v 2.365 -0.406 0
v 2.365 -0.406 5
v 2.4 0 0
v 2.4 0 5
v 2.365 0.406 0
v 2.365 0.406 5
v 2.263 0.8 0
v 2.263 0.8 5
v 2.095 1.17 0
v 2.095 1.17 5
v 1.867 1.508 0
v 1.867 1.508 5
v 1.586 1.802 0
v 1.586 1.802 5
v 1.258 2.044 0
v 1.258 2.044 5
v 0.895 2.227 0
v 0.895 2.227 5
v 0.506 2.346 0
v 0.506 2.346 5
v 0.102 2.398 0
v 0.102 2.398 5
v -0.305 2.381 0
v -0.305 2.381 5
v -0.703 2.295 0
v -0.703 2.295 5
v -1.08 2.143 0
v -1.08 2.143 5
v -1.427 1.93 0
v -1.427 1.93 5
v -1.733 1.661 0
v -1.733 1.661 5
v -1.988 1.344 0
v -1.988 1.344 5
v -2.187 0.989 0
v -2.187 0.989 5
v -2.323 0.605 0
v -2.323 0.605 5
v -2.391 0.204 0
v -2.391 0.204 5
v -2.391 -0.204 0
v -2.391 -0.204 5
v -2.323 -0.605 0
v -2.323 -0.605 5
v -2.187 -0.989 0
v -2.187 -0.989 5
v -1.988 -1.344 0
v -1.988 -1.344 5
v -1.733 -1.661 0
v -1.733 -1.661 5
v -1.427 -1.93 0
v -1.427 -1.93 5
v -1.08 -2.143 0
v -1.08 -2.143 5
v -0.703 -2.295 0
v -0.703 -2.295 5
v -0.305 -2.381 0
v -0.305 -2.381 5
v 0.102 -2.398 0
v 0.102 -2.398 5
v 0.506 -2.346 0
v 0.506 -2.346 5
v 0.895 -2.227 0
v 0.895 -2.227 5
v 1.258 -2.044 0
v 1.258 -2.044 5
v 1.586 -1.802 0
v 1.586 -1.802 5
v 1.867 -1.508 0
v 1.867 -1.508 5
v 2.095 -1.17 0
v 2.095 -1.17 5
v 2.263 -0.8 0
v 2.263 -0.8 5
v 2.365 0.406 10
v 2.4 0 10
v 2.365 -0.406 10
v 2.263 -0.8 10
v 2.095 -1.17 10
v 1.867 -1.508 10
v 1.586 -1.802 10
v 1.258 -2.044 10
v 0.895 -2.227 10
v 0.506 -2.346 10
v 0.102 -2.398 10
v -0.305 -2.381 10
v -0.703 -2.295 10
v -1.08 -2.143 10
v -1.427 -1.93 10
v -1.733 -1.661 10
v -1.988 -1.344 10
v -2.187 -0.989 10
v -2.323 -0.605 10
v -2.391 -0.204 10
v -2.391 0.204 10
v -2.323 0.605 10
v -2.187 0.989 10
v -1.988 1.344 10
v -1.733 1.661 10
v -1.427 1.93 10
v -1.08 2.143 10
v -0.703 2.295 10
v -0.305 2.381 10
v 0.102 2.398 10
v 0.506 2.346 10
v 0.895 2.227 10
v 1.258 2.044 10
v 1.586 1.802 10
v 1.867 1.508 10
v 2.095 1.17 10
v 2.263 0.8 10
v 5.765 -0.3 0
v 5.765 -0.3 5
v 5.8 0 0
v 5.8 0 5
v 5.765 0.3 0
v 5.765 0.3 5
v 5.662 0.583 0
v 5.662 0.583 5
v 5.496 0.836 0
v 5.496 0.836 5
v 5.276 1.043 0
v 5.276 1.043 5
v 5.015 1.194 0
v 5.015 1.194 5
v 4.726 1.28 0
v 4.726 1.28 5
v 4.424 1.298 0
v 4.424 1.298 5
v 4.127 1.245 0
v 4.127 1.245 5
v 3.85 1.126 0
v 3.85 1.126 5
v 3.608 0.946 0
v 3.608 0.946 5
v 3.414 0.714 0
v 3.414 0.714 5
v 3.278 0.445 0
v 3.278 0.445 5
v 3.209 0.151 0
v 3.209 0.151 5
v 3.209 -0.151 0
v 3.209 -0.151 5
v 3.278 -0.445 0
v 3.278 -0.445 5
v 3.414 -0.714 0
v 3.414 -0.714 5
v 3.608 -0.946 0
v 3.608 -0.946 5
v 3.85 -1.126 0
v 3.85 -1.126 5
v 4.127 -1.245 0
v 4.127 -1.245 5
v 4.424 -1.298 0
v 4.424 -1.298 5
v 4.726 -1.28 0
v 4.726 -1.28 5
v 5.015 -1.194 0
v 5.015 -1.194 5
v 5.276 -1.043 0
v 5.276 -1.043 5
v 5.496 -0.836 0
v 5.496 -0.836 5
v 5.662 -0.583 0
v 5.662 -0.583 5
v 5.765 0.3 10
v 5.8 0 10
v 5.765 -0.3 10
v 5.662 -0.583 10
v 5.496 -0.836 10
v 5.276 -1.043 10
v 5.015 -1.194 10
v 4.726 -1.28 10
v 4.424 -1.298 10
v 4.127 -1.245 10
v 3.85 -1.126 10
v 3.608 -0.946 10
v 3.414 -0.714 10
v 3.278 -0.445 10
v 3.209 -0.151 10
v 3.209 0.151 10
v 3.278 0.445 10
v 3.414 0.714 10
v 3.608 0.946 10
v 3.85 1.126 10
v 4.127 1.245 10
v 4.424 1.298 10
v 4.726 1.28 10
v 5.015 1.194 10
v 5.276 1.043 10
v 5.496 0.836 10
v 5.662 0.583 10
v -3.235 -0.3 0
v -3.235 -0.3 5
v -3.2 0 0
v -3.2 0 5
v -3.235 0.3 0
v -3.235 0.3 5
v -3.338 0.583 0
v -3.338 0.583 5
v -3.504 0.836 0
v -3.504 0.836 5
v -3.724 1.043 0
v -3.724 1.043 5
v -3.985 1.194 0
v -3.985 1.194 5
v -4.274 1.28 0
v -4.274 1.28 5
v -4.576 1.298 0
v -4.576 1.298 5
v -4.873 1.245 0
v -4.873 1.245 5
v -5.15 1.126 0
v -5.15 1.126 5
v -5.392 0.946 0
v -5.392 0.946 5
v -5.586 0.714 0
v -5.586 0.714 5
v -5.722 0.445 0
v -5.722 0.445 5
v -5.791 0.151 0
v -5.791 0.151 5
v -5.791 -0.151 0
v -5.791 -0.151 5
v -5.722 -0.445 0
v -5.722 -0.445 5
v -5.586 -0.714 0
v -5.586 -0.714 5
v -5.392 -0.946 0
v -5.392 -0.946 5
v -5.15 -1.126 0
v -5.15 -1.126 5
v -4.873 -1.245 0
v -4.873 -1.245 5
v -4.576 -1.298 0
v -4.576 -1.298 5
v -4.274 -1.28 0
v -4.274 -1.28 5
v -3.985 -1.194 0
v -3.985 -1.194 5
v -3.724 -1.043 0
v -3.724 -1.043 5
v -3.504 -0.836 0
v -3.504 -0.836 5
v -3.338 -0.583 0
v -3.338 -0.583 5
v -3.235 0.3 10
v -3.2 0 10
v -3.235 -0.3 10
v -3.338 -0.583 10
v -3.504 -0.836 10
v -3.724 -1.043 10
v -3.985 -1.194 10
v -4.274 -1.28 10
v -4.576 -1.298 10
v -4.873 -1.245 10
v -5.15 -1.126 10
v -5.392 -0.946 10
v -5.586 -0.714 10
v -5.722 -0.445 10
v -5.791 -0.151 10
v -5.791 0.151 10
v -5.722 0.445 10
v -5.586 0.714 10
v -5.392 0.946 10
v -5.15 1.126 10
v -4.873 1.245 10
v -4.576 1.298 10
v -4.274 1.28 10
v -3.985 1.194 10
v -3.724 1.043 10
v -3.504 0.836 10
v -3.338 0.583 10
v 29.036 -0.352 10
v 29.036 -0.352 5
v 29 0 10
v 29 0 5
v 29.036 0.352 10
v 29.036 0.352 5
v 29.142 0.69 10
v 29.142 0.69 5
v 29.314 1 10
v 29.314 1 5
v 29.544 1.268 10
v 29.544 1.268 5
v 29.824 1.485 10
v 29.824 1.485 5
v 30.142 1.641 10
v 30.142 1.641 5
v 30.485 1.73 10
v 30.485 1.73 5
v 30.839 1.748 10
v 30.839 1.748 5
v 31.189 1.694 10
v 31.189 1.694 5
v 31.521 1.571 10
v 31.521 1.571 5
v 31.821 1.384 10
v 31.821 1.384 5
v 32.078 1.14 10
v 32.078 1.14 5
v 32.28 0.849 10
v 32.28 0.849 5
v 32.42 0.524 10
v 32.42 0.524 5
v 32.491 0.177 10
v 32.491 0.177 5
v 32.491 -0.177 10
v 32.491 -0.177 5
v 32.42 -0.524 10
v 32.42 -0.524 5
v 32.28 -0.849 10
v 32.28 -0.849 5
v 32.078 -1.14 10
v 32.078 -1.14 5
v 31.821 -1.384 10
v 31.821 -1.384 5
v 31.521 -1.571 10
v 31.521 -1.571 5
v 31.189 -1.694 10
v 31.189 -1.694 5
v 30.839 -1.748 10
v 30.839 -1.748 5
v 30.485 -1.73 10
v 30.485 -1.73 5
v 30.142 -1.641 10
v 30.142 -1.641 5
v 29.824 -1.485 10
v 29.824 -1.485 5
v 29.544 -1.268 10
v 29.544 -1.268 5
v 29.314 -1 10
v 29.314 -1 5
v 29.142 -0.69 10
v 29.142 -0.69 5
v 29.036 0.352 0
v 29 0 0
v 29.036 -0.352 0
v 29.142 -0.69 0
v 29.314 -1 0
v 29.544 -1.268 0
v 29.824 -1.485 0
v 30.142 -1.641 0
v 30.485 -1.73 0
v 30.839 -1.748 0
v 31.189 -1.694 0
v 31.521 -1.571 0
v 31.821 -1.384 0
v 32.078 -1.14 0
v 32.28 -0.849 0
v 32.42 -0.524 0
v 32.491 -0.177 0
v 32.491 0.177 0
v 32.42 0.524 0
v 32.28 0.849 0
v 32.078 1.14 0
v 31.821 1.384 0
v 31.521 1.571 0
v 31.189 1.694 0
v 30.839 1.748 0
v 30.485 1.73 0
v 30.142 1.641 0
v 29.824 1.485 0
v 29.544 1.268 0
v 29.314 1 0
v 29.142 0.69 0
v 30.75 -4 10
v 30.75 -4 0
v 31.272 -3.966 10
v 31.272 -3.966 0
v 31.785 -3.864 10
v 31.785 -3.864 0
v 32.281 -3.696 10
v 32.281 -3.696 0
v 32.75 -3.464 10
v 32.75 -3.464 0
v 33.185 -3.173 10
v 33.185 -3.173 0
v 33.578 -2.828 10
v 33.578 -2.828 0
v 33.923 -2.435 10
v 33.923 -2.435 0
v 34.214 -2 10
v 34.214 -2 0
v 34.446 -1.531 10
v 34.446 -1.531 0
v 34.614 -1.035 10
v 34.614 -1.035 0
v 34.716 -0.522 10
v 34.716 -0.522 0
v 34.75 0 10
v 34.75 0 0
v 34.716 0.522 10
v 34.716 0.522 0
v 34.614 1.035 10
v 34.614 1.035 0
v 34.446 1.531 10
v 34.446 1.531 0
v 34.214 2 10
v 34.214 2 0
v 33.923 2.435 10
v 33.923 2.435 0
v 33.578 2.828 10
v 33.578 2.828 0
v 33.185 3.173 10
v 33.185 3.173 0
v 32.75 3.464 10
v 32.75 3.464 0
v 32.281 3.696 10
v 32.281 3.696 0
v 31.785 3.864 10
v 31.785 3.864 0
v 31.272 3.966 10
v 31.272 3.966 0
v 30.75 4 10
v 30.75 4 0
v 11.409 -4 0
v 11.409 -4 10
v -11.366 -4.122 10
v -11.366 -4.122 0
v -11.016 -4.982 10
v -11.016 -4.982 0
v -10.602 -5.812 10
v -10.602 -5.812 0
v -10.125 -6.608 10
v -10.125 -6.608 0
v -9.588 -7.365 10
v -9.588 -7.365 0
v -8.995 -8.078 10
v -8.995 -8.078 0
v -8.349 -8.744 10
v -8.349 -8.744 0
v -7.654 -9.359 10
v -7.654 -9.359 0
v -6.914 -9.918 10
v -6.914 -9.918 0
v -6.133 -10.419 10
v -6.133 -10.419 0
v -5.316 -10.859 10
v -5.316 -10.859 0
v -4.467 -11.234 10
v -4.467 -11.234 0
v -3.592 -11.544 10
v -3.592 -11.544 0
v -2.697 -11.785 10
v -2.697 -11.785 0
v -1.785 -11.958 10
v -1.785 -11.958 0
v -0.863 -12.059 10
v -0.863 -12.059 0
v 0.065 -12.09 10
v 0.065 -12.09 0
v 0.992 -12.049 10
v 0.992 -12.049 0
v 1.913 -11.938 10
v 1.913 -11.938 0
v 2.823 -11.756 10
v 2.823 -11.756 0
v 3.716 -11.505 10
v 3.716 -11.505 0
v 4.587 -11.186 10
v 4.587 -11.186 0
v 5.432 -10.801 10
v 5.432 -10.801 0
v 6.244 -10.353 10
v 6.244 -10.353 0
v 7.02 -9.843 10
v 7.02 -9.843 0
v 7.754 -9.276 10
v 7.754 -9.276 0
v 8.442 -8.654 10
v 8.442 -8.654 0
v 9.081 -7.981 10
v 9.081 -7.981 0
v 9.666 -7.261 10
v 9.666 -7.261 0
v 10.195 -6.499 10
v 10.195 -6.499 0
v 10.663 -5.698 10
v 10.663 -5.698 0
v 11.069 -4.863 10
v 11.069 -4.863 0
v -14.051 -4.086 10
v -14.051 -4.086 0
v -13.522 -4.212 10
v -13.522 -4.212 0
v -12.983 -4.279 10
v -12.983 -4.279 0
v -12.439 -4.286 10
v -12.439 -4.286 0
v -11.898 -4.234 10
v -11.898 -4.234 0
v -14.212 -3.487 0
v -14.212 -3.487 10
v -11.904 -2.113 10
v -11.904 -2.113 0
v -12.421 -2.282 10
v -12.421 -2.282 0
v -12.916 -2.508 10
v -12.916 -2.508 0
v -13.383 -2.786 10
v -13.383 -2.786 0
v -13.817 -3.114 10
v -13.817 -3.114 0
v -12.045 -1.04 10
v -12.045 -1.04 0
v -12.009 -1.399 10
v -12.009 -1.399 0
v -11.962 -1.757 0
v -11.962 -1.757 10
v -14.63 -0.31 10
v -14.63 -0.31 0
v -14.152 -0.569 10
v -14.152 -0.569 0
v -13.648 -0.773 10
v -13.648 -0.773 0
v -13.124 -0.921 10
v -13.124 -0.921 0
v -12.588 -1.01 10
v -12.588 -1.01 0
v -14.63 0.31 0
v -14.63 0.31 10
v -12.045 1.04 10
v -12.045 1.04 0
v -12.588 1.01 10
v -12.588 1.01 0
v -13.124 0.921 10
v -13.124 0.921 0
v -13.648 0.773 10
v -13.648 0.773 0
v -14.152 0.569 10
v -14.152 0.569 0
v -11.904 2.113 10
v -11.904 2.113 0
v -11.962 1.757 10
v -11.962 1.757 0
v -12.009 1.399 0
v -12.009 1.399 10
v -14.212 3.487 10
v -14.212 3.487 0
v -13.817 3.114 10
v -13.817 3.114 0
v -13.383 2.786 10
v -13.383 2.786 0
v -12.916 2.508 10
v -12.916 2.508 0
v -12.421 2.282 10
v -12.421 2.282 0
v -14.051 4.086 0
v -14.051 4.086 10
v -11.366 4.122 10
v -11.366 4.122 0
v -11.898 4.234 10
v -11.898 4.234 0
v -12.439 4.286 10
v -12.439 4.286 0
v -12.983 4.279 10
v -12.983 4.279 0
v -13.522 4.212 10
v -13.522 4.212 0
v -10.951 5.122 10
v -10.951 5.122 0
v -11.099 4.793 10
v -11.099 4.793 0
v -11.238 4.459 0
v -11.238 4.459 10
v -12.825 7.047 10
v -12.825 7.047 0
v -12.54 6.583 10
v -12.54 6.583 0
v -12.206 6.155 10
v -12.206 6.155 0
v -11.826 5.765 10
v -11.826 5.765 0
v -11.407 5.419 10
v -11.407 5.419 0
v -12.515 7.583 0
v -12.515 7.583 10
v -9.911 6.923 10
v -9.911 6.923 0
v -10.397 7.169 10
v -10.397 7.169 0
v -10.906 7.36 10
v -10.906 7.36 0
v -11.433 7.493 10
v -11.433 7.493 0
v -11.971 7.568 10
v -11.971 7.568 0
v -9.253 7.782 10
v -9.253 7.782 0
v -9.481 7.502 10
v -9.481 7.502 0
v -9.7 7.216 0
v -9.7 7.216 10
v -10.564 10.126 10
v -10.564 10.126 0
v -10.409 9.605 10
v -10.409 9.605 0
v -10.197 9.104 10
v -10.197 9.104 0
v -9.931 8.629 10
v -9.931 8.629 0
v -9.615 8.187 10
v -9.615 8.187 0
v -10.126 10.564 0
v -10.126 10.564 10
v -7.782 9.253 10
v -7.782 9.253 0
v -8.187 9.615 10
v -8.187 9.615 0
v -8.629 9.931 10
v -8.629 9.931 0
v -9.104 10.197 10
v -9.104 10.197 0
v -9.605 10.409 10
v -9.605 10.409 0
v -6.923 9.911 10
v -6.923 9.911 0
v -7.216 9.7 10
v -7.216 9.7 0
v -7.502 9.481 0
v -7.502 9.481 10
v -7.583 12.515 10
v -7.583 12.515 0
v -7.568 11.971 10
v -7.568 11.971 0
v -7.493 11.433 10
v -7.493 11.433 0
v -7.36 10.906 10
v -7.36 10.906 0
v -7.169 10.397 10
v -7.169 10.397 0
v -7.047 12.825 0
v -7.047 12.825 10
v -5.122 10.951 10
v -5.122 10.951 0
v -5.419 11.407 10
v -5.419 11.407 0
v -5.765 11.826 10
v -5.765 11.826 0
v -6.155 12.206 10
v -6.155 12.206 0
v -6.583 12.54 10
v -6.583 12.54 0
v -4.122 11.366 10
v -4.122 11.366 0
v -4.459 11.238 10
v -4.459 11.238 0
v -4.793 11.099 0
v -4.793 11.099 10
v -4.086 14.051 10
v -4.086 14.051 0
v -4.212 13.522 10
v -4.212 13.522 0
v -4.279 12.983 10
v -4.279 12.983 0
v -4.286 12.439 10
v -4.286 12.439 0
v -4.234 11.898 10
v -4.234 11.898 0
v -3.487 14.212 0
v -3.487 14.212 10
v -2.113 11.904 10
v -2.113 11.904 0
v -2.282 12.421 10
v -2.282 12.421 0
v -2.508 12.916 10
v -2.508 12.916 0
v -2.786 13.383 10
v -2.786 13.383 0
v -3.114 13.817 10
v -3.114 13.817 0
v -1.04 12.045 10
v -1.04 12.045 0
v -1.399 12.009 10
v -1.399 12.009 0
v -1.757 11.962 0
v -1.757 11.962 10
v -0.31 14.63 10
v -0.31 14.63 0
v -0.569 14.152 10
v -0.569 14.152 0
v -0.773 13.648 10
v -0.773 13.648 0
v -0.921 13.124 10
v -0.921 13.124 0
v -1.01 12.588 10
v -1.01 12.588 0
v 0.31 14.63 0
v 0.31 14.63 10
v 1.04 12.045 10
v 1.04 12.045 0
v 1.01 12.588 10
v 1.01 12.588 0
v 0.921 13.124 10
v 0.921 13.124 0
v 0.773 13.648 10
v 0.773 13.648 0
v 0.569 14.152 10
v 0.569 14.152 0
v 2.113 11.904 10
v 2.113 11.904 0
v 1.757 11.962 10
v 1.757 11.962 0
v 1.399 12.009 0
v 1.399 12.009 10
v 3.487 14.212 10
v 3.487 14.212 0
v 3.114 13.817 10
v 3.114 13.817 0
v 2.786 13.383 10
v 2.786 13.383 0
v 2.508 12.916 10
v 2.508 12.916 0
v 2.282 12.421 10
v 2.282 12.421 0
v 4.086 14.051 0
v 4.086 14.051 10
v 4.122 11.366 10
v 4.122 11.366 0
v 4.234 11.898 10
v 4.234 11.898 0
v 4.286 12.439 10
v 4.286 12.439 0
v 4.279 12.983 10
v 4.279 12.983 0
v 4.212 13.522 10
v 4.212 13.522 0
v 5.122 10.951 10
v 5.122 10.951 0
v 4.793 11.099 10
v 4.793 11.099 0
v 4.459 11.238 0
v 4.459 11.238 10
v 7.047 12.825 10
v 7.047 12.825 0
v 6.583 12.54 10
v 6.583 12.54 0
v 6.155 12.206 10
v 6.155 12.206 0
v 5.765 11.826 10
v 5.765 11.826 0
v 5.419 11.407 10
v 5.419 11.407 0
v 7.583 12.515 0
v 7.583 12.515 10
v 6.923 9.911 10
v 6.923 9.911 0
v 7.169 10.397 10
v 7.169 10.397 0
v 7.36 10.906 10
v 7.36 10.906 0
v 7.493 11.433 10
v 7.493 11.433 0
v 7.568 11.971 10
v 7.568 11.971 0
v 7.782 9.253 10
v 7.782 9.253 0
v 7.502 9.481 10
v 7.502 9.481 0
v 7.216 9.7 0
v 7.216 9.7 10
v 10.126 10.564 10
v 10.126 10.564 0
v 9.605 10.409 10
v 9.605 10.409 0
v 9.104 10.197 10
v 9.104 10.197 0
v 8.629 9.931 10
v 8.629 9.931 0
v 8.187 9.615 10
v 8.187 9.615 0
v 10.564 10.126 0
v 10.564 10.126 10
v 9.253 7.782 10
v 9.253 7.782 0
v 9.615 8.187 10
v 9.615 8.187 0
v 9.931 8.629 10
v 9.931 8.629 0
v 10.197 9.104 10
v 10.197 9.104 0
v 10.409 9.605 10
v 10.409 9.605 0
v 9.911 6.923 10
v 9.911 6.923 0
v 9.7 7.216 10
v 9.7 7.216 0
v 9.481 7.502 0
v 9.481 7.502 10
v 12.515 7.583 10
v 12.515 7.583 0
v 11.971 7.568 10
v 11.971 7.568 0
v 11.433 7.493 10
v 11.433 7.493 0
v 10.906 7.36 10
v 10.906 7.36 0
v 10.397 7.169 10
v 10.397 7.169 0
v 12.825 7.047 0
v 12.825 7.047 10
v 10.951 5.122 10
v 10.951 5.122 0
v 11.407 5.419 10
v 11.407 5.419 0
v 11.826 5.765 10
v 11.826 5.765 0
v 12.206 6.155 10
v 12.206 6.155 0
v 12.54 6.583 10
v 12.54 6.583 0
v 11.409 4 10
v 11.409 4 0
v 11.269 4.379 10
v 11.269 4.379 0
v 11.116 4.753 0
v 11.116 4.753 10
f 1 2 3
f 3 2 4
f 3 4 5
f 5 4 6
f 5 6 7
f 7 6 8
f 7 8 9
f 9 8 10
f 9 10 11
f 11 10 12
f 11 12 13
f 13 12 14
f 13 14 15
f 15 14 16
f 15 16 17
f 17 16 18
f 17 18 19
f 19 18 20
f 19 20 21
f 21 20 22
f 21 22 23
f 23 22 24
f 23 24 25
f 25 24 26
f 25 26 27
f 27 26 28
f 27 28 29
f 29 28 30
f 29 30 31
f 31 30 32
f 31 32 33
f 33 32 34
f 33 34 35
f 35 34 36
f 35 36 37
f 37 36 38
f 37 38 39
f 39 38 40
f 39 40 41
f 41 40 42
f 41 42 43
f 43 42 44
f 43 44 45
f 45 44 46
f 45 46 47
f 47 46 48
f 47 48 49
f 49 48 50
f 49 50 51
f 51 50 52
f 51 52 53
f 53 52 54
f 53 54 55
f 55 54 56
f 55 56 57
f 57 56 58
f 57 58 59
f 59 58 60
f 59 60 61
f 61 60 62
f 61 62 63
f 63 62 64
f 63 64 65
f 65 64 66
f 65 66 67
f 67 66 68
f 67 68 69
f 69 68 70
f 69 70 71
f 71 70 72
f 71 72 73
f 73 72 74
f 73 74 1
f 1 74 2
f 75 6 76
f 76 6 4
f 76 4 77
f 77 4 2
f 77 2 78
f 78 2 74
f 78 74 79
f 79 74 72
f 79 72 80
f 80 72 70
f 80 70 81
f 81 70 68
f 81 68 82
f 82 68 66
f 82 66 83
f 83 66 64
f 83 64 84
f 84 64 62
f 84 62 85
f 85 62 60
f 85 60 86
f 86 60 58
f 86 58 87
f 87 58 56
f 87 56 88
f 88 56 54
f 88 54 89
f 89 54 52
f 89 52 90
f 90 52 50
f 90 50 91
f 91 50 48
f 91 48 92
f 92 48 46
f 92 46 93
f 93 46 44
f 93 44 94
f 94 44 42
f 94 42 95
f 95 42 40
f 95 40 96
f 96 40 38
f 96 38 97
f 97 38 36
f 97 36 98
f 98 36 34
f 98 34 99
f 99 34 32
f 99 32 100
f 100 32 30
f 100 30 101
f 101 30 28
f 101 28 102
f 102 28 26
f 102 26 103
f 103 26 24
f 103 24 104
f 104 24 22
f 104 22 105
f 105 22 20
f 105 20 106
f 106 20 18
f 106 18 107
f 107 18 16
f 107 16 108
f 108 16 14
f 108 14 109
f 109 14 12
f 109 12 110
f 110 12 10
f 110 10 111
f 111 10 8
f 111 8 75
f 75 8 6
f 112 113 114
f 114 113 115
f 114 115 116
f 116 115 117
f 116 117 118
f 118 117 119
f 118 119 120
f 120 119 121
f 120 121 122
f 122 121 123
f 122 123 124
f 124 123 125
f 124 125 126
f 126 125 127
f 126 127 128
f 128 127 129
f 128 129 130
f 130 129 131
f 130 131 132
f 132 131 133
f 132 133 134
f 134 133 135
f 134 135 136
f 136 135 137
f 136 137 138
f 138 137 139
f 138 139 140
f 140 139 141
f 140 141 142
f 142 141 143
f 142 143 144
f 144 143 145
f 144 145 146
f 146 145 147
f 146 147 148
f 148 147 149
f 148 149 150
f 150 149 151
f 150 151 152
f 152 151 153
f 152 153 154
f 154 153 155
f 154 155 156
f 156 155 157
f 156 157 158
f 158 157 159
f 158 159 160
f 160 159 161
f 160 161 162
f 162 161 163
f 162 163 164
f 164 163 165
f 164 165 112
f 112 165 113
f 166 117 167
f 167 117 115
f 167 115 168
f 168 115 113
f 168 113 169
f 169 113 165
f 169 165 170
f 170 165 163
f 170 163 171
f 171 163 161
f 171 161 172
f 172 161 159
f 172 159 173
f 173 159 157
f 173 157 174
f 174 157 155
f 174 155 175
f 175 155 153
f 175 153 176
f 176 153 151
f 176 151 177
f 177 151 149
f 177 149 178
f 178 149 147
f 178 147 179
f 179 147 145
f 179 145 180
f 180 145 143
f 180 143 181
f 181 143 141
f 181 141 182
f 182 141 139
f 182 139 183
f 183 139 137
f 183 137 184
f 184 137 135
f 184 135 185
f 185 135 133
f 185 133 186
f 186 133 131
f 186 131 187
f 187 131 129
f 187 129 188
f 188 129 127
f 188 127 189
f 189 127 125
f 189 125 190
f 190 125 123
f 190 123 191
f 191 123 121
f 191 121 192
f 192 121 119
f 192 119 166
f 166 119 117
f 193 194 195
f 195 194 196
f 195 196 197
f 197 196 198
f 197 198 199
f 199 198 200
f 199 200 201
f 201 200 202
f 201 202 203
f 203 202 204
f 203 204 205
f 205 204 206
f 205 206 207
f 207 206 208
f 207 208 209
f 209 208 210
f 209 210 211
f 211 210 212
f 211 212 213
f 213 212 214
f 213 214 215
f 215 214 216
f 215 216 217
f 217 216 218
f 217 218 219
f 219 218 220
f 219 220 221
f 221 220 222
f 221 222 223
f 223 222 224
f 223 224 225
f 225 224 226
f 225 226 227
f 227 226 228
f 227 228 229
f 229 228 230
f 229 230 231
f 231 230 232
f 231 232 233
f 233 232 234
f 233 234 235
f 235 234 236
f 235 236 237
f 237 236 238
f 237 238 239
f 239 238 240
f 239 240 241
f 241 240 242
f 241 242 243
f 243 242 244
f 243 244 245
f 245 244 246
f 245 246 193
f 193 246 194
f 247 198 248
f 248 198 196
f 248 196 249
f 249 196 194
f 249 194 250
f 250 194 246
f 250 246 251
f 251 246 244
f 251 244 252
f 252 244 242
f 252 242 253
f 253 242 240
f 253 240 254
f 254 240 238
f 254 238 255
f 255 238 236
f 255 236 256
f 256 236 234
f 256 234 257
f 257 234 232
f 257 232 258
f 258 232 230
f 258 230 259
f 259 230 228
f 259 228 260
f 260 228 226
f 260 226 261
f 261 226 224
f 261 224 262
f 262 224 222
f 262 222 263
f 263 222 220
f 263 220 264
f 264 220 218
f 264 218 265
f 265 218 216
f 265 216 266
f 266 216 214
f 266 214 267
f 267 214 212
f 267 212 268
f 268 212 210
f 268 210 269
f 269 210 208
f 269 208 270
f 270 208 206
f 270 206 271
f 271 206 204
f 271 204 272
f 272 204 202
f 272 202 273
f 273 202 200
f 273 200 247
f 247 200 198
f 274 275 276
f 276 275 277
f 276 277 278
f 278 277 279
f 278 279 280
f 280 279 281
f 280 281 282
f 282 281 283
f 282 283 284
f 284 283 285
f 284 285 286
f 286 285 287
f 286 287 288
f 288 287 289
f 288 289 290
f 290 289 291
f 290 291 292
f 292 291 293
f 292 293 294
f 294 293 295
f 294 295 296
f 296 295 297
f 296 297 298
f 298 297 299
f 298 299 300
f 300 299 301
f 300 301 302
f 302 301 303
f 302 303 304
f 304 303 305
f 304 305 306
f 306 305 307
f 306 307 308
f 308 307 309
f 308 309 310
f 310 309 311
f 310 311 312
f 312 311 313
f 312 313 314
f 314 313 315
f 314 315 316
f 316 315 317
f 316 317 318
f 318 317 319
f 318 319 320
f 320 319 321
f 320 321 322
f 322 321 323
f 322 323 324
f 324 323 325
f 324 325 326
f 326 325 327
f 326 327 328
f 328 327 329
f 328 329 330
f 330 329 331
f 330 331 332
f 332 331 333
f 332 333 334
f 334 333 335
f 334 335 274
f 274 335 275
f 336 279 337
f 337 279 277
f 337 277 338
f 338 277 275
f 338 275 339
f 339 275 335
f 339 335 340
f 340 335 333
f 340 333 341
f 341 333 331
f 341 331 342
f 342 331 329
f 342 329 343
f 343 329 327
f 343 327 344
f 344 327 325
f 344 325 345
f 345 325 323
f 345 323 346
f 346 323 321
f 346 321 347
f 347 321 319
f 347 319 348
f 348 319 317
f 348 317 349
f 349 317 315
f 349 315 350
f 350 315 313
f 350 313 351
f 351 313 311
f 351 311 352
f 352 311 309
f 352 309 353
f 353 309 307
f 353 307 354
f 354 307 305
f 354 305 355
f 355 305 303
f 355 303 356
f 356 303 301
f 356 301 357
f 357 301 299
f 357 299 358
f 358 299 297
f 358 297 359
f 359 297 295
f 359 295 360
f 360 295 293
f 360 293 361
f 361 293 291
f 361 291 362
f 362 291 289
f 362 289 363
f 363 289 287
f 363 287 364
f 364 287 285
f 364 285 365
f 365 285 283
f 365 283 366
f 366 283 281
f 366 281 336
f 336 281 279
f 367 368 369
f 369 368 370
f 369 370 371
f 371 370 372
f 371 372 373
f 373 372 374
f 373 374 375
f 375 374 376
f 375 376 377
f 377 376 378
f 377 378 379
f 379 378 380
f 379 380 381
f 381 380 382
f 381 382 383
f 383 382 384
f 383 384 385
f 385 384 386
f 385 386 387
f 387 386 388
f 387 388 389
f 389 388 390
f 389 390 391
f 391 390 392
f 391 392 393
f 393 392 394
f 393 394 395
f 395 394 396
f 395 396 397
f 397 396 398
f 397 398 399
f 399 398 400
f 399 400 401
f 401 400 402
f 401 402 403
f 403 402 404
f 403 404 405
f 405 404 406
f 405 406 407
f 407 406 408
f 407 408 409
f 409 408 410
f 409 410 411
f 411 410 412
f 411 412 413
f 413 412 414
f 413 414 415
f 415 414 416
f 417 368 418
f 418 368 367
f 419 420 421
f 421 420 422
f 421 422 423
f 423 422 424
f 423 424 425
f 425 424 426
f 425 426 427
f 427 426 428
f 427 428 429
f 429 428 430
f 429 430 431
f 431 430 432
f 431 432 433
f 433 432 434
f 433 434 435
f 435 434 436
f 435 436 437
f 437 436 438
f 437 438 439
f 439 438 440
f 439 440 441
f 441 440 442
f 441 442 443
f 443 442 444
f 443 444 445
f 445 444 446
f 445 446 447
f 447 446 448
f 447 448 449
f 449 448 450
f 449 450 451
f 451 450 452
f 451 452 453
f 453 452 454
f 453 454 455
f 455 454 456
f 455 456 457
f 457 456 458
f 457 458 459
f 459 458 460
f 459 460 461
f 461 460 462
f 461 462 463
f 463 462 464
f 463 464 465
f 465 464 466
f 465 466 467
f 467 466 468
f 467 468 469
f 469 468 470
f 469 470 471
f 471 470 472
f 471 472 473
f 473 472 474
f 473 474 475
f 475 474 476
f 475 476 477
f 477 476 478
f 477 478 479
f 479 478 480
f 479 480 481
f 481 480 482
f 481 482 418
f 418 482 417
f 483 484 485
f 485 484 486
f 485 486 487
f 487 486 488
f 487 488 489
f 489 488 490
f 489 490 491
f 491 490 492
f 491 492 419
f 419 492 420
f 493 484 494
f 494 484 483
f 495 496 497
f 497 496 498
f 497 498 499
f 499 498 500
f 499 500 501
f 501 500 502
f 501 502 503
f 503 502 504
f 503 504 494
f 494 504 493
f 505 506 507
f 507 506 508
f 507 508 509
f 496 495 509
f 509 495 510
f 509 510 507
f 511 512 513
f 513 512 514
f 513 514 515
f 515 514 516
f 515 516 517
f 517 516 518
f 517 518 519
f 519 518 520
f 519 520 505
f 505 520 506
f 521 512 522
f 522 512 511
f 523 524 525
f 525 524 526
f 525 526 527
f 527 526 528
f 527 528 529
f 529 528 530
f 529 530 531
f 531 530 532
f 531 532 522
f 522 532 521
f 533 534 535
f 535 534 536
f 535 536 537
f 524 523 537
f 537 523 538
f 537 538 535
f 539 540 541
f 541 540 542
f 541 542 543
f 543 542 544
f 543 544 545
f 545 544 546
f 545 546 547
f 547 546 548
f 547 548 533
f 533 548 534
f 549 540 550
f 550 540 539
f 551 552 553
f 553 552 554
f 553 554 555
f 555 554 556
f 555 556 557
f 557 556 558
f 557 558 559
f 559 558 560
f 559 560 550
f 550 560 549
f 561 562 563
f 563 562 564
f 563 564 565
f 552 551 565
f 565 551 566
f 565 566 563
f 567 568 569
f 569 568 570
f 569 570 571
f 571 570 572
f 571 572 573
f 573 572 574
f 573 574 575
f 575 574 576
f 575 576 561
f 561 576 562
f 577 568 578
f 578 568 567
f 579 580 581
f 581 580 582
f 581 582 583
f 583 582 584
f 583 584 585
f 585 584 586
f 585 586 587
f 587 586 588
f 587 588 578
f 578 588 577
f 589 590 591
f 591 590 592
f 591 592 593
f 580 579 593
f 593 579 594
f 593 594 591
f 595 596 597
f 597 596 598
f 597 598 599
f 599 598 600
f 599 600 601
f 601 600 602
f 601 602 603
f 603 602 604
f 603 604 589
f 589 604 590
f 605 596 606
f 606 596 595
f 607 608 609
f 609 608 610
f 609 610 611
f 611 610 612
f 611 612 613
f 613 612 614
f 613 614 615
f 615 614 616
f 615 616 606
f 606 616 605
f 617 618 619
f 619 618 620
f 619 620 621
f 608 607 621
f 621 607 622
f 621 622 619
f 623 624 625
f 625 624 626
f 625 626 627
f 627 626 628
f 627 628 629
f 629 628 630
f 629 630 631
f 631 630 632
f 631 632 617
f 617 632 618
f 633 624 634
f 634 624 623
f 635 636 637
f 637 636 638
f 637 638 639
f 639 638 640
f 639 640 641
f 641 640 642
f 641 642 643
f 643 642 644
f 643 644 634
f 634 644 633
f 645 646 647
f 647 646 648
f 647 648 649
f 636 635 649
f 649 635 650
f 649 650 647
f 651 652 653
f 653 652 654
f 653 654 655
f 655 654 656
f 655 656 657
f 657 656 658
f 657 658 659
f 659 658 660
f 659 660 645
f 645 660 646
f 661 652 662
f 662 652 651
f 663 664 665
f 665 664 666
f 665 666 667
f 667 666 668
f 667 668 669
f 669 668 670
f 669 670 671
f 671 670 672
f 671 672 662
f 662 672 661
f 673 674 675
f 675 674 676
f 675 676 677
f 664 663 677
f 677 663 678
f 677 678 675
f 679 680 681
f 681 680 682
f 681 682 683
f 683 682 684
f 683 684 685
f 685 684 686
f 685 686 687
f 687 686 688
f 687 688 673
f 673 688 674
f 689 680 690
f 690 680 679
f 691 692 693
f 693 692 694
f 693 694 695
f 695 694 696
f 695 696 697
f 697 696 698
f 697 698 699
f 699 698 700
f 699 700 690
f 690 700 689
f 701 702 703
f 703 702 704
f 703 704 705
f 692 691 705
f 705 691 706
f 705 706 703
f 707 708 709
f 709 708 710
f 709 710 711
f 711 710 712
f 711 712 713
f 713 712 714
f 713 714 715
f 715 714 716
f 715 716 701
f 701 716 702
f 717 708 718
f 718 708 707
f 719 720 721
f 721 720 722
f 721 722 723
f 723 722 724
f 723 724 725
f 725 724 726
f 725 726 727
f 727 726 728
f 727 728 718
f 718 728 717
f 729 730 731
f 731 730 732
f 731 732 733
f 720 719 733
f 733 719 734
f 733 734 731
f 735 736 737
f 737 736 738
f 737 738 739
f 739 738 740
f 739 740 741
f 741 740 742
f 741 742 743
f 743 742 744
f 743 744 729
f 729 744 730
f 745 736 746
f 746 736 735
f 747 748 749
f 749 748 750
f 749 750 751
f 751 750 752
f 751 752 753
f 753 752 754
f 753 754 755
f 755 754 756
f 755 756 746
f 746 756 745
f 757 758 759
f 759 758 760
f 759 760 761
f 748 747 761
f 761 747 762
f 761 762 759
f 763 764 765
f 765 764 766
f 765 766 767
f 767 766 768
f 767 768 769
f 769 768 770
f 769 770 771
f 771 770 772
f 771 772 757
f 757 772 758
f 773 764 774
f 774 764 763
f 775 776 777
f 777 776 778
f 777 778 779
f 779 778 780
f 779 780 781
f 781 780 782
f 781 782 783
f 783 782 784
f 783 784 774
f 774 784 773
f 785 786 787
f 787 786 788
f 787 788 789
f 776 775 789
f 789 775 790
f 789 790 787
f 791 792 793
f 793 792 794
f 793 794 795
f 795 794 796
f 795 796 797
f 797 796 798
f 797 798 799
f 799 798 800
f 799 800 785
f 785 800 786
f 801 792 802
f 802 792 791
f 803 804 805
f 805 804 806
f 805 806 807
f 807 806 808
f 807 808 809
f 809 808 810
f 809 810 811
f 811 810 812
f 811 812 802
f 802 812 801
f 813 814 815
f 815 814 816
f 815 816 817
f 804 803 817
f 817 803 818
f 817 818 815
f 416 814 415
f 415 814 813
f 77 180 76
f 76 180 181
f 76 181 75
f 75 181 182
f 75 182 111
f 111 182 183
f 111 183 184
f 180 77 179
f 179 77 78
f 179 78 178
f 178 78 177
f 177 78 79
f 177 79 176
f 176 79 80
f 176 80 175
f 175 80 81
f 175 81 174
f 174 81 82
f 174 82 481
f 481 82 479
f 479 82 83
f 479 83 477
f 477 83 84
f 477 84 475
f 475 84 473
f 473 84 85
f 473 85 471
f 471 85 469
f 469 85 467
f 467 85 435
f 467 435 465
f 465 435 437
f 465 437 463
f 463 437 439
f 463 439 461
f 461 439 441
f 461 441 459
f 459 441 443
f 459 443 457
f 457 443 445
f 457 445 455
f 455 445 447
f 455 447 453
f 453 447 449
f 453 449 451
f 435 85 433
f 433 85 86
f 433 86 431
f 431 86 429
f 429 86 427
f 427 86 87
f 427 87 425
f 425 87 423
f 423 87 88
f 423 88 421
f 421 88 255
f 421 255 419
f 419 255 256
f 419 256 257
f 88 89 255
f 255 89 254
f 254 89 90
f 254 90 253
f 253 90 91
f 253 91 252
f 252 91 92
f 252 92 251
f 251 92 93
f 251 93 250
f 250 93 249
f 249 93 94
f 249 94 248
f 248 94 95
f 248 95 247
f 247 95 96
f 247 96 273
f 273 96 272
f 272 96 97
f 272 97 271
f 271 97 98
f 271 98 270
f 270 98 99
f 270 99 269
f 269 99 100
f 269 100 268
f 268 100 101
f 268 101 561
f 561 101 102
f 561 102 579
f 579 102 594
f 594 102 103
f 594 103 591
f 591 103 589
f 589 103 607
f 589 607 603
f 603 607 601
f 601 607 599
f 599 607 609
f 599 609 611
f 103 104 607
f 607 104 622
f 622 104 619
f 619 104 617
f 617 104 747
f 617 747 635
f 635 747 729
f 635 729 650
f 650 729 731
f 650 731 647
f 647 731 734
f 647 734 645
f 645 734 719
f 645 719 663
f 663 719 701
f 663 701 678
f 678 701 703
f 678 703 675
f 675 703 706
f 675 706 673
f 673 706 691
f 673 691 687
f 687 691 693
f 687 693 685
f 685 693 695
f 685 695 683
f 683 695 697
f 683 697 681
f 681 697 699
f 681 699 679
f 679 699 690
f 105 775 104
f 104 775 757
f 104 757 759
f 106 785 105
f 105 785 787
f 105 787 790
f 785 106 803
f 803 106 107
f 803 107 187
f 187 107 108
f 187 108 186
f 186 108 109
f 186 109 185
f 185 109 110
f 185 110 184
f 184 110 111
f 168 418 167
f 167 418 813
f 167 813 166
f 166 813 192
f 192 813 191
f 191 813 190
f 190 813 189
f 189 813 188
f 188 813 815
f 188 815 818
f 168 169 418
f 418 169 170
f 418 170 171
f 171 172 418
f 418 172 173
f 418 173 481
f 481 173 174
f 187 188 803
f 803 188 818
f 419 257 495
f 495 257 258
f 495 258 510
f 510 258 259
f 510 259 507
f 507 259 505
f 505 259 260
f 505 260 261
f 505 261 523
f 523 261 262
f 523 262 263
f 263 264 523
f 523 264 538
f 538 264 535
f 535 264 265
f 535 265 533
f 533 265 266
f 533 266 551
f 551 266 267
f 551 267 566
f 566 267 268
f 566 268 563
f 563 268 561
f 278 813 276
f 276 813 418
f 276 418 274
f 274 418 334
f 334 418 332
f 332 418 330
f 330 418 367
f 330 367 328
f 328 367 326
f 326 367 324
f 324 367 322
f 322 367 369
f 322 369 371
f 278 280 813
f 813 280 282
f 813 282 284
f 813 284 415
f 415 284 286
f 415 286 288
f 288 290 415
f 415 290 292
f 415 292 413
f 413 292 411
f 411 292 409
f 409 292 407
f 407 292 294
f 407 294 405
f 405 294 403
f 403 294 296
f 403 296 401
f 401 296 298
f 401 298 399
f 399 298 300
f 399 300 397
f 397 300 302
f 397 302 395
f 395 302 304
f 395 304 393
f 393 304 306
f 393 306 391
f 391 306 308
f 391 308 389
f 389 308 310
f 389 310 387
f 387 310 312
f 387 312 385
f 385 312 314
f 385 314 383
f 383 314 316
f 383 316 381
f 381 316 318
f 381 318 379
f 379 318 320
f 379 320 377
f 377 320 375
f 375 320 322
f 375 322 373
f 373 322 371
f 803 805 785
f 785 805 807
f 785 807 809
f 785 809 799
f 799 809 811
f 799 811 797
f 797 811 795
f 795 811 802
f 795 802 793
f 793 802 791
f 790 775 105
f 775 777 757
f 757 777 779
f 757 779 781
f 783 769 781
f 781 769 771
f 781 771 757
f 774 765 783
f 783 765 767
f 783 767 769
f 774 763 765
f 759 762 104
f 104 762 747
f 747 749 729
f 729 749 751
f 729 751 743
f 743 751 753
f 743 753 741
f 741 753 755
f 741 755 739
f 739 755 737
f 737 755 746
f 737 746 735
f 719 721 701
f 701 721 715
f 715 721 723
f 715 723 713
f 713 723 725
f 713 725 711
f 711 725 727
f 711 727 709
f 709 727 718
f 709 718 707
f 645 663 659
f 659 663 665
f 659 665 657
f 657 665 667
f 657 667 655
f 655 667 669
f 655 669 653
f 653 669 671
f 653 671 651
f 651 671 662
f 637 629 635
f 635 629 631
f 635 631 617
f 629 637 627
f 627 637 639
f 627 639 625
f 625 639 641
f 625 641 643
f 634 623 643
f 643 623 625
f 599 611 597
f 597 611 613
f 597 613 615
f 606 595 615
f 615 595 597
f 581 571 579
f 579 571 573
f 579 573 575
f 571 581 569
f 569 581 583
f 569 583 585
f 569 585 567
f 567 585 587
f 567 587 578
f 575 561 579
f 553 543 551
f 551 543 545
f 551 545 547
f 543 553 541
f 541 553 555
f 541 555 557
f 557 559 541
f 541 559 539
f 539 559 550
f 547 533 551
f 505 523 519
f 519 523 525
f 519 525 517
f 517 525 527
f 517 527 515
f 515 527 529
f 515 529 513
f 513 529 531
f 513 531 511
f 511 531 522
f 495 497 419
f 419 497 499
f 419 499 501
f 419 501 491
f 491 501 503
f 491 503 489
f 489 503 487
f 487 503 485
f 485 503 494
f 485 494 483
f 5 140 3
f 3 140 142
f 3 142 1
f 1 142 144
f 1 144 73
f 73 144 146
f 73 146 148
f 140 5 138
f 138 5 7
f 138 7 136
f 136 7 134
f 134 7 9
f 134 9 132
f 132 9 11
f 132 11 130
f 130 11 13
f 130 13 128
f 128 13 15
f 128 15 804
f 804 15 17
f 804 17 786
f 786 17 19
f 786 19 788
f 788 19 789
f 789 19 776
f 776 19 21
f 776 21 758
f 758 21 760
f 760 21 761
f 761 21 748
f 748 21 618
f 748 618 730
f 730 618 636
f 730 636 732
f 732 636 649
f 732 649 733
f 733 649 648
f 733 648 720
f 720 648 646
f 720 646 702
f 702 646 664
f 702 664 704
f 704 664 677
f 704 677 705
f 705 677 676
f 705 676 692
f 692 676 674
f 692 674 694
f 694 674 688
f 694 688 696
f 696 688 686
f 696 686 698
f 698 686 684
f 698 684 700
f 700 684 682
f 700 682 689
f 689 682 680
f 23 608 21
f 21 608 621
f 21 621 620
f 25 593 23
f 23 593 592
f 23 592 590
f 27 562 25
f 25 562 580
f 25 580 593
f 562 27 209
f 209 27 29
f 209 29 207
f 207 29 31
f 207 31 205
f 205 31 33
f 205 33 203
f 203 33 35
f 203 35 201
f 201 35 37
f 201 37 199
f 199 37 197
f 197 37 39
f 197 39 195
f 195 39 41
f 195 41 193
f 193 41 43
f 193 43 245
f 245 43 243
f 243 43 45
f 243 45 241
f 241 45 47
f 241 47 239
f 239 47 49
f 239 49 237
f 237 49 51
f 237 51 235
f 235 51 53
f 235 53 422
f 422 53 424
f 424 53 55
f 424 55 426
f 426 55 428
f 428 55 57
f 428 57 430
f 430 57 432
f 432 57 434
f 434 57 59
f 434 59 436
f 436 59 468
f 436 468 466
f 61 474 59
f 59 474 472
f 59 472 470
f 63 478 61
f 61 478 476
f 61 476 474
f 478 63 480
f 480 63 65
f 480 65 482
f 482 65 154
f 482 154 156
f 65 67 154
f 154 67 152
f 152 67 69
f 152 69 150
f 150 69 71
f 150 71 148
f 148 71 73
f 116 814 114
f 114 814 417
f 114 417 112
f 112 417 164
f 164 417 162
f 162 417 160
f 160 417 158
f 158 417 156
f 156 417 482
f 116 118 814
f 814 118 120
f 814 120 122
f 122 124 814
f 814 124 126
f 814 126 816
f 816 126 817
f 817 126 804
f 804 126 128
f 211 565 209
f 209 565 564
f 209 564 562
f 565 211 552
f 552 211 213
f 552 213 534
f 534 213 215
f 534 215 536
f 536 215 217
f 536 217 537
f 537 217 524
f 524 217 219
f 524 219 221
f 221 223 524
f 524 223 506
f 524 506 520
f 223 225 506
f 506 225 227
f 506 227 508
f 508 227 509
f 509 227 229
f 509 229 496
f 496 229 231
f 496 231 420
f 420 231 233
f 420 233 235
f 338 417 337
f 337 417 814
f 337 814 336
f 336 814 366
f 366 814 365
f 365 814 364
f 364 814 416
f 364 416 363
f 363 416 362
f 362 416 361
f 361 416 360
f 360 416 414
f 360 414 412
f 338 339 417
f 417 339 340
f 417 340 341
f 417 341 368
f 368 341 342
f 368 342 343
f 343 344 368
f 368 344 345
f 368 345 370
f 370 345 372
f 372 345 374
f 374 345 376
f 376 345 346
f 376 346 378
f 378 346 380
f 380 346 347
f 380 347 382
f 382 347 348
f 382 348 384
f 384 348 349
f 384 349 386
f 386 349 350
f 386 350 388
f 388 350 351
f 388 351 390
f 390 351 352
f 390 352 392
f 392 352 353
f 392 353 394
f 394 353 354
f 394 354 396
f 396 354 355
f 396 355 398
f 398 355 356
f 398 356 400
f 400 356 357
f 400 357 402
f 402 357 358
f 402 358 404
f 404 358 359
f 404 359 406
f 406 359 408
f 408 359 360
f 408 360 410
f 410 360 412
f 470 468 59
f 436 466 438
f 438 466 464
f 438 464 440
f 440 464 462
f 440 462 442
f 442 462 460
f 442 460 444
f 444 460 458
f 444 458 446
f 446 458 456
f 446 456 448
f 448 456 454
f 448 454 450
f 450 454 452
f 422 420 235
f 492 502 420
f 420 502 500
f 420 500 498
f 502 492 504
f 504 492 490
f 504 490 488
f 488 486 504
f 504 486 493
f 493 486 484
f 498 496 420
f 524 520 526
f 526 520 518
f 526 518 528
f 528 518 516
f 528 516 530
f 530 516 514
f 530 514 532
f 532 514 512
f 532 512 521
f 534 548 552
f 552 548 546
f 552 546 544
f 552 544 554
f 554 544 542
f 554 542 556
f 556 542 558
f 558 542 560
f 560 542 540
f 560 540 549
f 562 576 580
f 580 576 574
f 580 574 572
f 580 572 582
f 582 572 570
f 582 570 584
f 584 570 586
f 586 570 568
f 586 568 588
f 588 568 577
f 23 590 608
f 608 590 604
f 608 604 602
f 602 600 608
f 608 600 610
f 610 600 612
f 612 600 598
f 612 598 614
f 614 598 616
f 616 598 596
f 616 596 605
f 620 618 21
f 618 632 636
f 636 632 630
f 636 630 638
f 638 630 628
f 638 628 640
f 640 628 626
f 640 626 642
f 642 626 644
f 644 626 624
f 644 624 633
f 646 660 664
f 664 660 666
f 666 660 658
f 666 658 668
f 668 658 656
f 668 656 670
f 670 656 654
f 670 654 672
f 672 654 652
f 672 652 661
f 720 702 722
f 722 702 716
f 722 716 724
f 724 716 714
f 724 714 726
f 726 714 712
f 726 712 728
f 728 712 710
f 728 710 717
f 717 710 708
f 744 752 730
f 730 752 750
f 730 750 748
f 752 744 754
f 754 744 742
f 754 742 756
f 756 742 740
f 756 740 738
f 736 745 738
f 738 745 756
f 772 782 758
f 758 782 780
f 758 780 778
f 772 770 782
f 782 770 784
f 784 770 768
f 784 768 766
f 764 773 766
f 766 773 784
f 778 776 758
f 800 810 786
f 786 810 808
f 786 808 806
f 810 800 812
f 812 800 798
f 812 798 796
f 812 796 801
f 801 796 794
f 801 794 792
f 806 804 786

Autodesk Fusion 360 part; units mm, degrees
sketch "Sketch1" plane through (0, 0, 0) normal (0, 0, 1) x (1, 0, 0)
  circle A0 centre (0, 0) radius 12.09
  line L0 (0, 0) -> (30.75, 0)
  circle A1 centre (30.75, 0) radius 1.75
  circle A2 centre (0, 0) radius 1.75
  line L1 (0, -14.63) -> (0, 14.63) construction
  line L2 (0, 14.63) -> (-0.31, 14.63)
  line L3 (0, 14.63) -> (-0.31, 14.63)
  arc A3 (-0.31, 14.63) -> (-1.04, 12.0452) centre (3.9012, 12.0452) ccw
  arc A4 (1.04, 12.0452) -> (0.31, 14.63) centre (-3.9012, 12.0452) ccw
  line L4 (0.31, 14.63) -> (0, 14.63)
  arc A5 (-4.086, 14.0513) -> (-4.1221, 11.3656) centre (0.6508, 12.6445) ccw
  line L5 (-3.7865, 14.1315) -> (-4.086, 14.0513)
  line L6 (-3.4871, 14.2117) -> (-3.7865, 14.1315)
  arc A6 (-2.113, 11.9039) -> (-3.4871, 14.2117) centre (-6.8858, 10.625) ccw
  arc A7 (-7.5835, 12.515) -> (-6.9233, 9.9114) centre (-2.644, 12.382) ccw
  line L7 (-7.315, 12.67) -> (-7.5835, 12.515)
  line L8 (-7.0465, 12.825) -> (-7.315, 12.67)
  arc A8 (-5.1219, 10.9514) -> (-7.0465, 12.825) centre (-9.4011, 8.4808) ccw
  arc A9 (-10.5642, 10.1258) -> (-9.2526, 7.7818) centre (-5.7587, 11.2758) ccw
  line L9 (-10.345, 10.345) -> (-10.5642, 10.1258)
  line L10 (-10.1258, 10.5642) -> (-10.345, 10.345)
  arc A10 (-7.7818, 9.2526) -> (-10.1258, 10.5642) centre (-11.2758, 5.7587) ccw
  arc A11 (-12.825, 7.0465) -> (-10.9514, 5.1219) centre (-8.4808, 9.4011) ccw
  line L11 (-12.67, 7.315) -> (-12.825, 7.0465)
  line L12 (-12.515, 7.5835) -> (-12.67, 7.315)
  arc A12 (-9.9114, 6.9233) -> (-12.515, 7.5835) centre (-12.382, 2.644) ccw
  arc A13 (-14.2117, 3.4871) -> (-11.9039, 2.113) centre (-10.625, 6.8858) ccw
  line L13 (-14.1315, 3.7865) -> (-14.2117, 3.4871)
  line L14 (-14.0513, 4.086) -> (-14.1315, 3.7865)
  arc A14 (-11.3656, 4.1221) -> (-14.0513, 4.086) centre (-12.6445, -0.6508) ccw
  arc A15 (-14.63, -0.31) -> (-12.0452, -1.04) centre (-12.0452, 3.9012) ccw
  line L15 (-14.63, 0) -> (-14.63, -0.31)
  line L16 (-14.63, 0.31) -> (-14.63, 0)
  arc A16 (-12.0452, 1.04) -> (-14.63, 0.31) centre (-12.0452, -3.9012) ccw
  arc A17 (-14.0513, -4.086) -> (-11.3656, -4.1221) centre (-12.6445, 0.6508) ccw
  line L17 (-14.1315, -3.7865) -> (-14.0513, -4.086)
  line L18 (-14.2117, -3.4871) -> (-14.1315, -3.7865)
  arc A18 (-11.9039, -2.113) -> (-14.2117, -3.4871) centre (-10.625, -6.8858) ccw
  arc A19 (12.515, 7.5835) -> (9.9114, 6.9233) centre (12.382, 2.644) ccw
  line L19 (12.67, 7.315) -> (12.515, 7.5835)
  line L20 (12.825, 7.0465) -> (12.67, 7.315)
  arc A20 (10.9514, 5.1219) -> (12.825, 7.0465) centre (8.4808, 9.4011) ccw
  arc A21 (10.1258, 10.5642) -> (7.7818, 9.2526) centre (11.2758, 5.7587) ccw
  line L21 (10.345, 10.345) -> (10.1258, 10.5642)
  line L22 (10.5642, 10.1258) -> (10.345, 10.345)
  arc A22 (9.2526, 7.7818) -> (10.5642, 10.1258) centre (5.7587, 11.2758) ccw
  arc A23 (7.0465, 12.825) -> (5.1219, 10.9514) centre (9.4011, 8.4808) ccw
  line L23 (7.315, 12.67) -> (7.0465, 12.825)
  line L24 (7.5835, 12.515) -> (7.315, 12.67)
  arc A24 (6.9233, 9.9114) -> (7.5835, 12.515) centre (2.644, 12.382) ccw
  arc A25 (3.4871, 14.2117) -> (2.113, 11.9039) centre (6.8858, 10.625) ccw
  line L25 (3.7865, 14.1315) -> (3.4871, 14.2117)
  line L26 (4.086, 14.0513) -> (3.7865, 14.1315)
  arc A26 (4.1221, 11.3656) -> (4.086, 14.0513) centre (-0.6508, 12.6445) ccw
  circle A27 centre (30.75, 0) radius 4
  line L27 (30.75, 4) -> (11.4091, 4)
  line L28 (30.75, -4) -> (11.4091, -4)
  dimension "d1" = 24.18
  dimension "d2" = 30.75
  dimension "d3" = 3.5
  dimension "d4" = 3.5
  dimension "d5" = 29.26
  dimension "d6" = 0.31
  dimension "d9" = 360
  dimension "d10" = 8
extrude "Extrude1" add sketch "Sketch1" along normal blind 10
sketch "Sketch2" plane through (0, 0, 10) normal (0, 0, 1) x (-1, 0, 0)
  circle A0 centre (-30.75, 0) radius 1.75
  circle A1 centre (0, 0) radius 1.75
  line L0 (-30.75, -4) -> (-11.4091, -4)
  arc A2 (-11.4091, -4) -> (-10.9514, -5.1219) centre (0, 0) ccw
  arc A3 (-10.9514, -5.1219) -> (-12.825, -7.0465) centre (-8.4808, -9.4011) ccw
  line L1 (-12.825, -7.0465) -> (-12.515, -7.5835)
  arc A4 (-12.515, -7.5835) -> (-9.9114, -6.9233) centre (-12.382, -2.644) ccw
  arc A5 (-9.9114, -6.9233) -> (-9.2526, -7.7818) centre (0, 0) ccw
  arc A6 (-9.2526, -7.7818) -> (-10.5642, -10.1258) centre (-5.7587, -11.2758) ccw
  line L2 (-10.5642, -10.1258) -> (-10.1258, -10.5642)
  arc A7 (-10.1258, -10.5642) -> (-7.7818, -9.2526) centre (-11.2758, -5.7587) ccw
  arc A8 (-7.7818, -9.2526) -> (-6.9233, -9.9114) centre (0, 0) ccw
  arc A9 (-6.9233, -9.9114) -> (-7.5835, -12.515) centre (-2.644, -12.382) ccw
  line L3 (-7.5835, -12.515) -> (-7.0465, -12.825)
  arc A10 (-7.0465, -12.825) -> (-5.1219, -10.9514) centre (-9.4011, -8.4808) ccw
  arc A11 (-5.1219, -10.9514) -> (-4.1221, -11.3656) centre (0, 0) ccw
  arc A12 (-4.1221, -11.3656) -> (-4.086, -14.0513) centre (0.6508, -12.6445) ccw
  line L4 (-4.086, -14.0513) -> (-3.4871, -14.2117)
  arc A13 (-3.4871, -14.2117) -> (-2.113, -11.9039) centre (-6.8858, -10.625) ccw
  arc A14 (-2.113, -11.9039) -> (-1.04, -12.0452) centre (0, 0) ccw
  arc A15 (-1.04, -12.0452) -> (-0.31, -14.63) centre (3.9012, -12.0452) ccw
  line L5 (-0.31, -14.63) -> (0.31, -14.63)
  arc A16 (0.31, -14.63) -> (1.04, -12.0452) centre (-3.9012, -12.0452) ccw
  arc A17 (1.04, -12.0452) -> (2.113, -11.9039) centre (0, 0) ccw
  arc A18 (2.113, -11.9039) -> (3.4871, -14.2117) centre (6.8858, -10.625) ccw
  line L6 (3.4871, -14.2117) -> (4.086, -14.0513)
  arc A19 (4.086, -14.0513) -> (4.1221, -11.3656) centre (-0.6508, -12.6445) ccw
  arc A20 (4.1221, -11.3656) -> (5.1219, -10.9514) centre (0, 0) ccw
  arc A21 (5.1219, -10.9514) -> (7.0465, -12.825) centre (9.4011, -8.4808) ccw
  line L7 (7.0465, -12.825) -> (7.5835, -12.515)
  arc A22 (7.5835, -12.515) -> (6.9233, -9.9114) centre (2.644, -12.382) ccw
  arc A23 (6.9233, -9.9114) -> (7.7818, -9.2526) centre (0, 0) ccw
  arc A24 (7.7818, -9.2526) -> (10.1258, -10.5642) centre (11.2758, -5.7587) ccw
  line L8 (10.1258, -10.5642) -> (10.5642, -10.1258)
  arc A25 (10.5642, -10.1258) -> (9.2526, -7.7818) centre (5.7587, -11.2758) ccw
  arc A26 (9.2526, -7.7818) -> (9.9114, -6.9233) centre (0, 0) ccw
  arc A27 (9.9114, -6.9233) -> (12.515, -7.5835) centre (12.382, -2.644) ccw
  line L9 (12.515, -7.5835) -> (12.825, -7.0465)
  arc A28 (12.825, -7.0465) -> (10.9514, -5.1219) centre (8.4808, -9.4011) ccw
  arc A29 (10.9514, -5.1219) -> (11.3656, -4.1221) centre (0, 0) ccw
  arc A30 (11.3656, -4.1221) -> (14.0513, -4.086) centre (12.6445, 0.6508) ccw
  line L10 (14.0513, -4.086) -> (14.2117, -3.4871)
  arc A31 (14.2117, -3.4871) -> (11.9039, -2.113) centre (10.625, -6.8858) ccw
  arc A32 (11.9039, -2.113) -> (12.0452, -1.04) centre (0, 0) ccw
  arc A33 (12.0452, -1.04) -> (14.63, -0.31) centre (12.0452, 3.9012) ccw
  line L11 (14.63, -0.31) -> (14.63, 0.31)
  arc A34 (14.63, 0.31) -> (12.0452, 1.04) centre (12.0452, -3.9012) ccw
  arc A35 (12.0452, 1.04) -> (11.9039, 2.113) centre (0, 0) ccw
  arc A36 (11.9039, 2.113) -> (14.2117, 3.4871) centre (10.625, 6.8858) ccw
  line L12 (14.2117, 3.4871) -> (14.0513, 4.086)
  arc A37 (14.0513, 4.086) -> (11.3656, 4.1221) centre (12.6445, -0.6508) ccw
  arc A38 (11.3656, 4.1221) -> (-11.4091, 4) centre (0, 0) ccw
  line L13 (-11.4091, 4) -> (-30.75, 4)
  arc A39 (-30.75, 4) -> (-30.75, -4) centre (-30.75, 0) ccw
  line L14 (4.5, 0) -> (-4.5, 0) construction
  circle A40 centre (4.5, 0) radius 1.3
  circle A41 centre (-4.5, 0) radius 1.3
  dimension "d13" = 9
  dimension "d14" = 2.6
  dimension "d15" = 2.6
sketch "Sketch3" plane through (0, 0, 10) normal (0, 0, 1) x (-1, 0, 0)
extrude "Extrude2" cut sketch "Sketch2" against normal blind 10 contours A40
extrude "Extrude3" cut sketch "Sketch2" against normal blind 10 contours A41
sketch "Sketch4" plane through (0, 0, 10) normal (0, 0, 1) x (-1, 0, 0)
  circle A0 centre (0, 0) radius 2.4
  dimension "d20" = 4.8
extrude "Extrude4" cut sketch "Sketch4" against normal blind 10
